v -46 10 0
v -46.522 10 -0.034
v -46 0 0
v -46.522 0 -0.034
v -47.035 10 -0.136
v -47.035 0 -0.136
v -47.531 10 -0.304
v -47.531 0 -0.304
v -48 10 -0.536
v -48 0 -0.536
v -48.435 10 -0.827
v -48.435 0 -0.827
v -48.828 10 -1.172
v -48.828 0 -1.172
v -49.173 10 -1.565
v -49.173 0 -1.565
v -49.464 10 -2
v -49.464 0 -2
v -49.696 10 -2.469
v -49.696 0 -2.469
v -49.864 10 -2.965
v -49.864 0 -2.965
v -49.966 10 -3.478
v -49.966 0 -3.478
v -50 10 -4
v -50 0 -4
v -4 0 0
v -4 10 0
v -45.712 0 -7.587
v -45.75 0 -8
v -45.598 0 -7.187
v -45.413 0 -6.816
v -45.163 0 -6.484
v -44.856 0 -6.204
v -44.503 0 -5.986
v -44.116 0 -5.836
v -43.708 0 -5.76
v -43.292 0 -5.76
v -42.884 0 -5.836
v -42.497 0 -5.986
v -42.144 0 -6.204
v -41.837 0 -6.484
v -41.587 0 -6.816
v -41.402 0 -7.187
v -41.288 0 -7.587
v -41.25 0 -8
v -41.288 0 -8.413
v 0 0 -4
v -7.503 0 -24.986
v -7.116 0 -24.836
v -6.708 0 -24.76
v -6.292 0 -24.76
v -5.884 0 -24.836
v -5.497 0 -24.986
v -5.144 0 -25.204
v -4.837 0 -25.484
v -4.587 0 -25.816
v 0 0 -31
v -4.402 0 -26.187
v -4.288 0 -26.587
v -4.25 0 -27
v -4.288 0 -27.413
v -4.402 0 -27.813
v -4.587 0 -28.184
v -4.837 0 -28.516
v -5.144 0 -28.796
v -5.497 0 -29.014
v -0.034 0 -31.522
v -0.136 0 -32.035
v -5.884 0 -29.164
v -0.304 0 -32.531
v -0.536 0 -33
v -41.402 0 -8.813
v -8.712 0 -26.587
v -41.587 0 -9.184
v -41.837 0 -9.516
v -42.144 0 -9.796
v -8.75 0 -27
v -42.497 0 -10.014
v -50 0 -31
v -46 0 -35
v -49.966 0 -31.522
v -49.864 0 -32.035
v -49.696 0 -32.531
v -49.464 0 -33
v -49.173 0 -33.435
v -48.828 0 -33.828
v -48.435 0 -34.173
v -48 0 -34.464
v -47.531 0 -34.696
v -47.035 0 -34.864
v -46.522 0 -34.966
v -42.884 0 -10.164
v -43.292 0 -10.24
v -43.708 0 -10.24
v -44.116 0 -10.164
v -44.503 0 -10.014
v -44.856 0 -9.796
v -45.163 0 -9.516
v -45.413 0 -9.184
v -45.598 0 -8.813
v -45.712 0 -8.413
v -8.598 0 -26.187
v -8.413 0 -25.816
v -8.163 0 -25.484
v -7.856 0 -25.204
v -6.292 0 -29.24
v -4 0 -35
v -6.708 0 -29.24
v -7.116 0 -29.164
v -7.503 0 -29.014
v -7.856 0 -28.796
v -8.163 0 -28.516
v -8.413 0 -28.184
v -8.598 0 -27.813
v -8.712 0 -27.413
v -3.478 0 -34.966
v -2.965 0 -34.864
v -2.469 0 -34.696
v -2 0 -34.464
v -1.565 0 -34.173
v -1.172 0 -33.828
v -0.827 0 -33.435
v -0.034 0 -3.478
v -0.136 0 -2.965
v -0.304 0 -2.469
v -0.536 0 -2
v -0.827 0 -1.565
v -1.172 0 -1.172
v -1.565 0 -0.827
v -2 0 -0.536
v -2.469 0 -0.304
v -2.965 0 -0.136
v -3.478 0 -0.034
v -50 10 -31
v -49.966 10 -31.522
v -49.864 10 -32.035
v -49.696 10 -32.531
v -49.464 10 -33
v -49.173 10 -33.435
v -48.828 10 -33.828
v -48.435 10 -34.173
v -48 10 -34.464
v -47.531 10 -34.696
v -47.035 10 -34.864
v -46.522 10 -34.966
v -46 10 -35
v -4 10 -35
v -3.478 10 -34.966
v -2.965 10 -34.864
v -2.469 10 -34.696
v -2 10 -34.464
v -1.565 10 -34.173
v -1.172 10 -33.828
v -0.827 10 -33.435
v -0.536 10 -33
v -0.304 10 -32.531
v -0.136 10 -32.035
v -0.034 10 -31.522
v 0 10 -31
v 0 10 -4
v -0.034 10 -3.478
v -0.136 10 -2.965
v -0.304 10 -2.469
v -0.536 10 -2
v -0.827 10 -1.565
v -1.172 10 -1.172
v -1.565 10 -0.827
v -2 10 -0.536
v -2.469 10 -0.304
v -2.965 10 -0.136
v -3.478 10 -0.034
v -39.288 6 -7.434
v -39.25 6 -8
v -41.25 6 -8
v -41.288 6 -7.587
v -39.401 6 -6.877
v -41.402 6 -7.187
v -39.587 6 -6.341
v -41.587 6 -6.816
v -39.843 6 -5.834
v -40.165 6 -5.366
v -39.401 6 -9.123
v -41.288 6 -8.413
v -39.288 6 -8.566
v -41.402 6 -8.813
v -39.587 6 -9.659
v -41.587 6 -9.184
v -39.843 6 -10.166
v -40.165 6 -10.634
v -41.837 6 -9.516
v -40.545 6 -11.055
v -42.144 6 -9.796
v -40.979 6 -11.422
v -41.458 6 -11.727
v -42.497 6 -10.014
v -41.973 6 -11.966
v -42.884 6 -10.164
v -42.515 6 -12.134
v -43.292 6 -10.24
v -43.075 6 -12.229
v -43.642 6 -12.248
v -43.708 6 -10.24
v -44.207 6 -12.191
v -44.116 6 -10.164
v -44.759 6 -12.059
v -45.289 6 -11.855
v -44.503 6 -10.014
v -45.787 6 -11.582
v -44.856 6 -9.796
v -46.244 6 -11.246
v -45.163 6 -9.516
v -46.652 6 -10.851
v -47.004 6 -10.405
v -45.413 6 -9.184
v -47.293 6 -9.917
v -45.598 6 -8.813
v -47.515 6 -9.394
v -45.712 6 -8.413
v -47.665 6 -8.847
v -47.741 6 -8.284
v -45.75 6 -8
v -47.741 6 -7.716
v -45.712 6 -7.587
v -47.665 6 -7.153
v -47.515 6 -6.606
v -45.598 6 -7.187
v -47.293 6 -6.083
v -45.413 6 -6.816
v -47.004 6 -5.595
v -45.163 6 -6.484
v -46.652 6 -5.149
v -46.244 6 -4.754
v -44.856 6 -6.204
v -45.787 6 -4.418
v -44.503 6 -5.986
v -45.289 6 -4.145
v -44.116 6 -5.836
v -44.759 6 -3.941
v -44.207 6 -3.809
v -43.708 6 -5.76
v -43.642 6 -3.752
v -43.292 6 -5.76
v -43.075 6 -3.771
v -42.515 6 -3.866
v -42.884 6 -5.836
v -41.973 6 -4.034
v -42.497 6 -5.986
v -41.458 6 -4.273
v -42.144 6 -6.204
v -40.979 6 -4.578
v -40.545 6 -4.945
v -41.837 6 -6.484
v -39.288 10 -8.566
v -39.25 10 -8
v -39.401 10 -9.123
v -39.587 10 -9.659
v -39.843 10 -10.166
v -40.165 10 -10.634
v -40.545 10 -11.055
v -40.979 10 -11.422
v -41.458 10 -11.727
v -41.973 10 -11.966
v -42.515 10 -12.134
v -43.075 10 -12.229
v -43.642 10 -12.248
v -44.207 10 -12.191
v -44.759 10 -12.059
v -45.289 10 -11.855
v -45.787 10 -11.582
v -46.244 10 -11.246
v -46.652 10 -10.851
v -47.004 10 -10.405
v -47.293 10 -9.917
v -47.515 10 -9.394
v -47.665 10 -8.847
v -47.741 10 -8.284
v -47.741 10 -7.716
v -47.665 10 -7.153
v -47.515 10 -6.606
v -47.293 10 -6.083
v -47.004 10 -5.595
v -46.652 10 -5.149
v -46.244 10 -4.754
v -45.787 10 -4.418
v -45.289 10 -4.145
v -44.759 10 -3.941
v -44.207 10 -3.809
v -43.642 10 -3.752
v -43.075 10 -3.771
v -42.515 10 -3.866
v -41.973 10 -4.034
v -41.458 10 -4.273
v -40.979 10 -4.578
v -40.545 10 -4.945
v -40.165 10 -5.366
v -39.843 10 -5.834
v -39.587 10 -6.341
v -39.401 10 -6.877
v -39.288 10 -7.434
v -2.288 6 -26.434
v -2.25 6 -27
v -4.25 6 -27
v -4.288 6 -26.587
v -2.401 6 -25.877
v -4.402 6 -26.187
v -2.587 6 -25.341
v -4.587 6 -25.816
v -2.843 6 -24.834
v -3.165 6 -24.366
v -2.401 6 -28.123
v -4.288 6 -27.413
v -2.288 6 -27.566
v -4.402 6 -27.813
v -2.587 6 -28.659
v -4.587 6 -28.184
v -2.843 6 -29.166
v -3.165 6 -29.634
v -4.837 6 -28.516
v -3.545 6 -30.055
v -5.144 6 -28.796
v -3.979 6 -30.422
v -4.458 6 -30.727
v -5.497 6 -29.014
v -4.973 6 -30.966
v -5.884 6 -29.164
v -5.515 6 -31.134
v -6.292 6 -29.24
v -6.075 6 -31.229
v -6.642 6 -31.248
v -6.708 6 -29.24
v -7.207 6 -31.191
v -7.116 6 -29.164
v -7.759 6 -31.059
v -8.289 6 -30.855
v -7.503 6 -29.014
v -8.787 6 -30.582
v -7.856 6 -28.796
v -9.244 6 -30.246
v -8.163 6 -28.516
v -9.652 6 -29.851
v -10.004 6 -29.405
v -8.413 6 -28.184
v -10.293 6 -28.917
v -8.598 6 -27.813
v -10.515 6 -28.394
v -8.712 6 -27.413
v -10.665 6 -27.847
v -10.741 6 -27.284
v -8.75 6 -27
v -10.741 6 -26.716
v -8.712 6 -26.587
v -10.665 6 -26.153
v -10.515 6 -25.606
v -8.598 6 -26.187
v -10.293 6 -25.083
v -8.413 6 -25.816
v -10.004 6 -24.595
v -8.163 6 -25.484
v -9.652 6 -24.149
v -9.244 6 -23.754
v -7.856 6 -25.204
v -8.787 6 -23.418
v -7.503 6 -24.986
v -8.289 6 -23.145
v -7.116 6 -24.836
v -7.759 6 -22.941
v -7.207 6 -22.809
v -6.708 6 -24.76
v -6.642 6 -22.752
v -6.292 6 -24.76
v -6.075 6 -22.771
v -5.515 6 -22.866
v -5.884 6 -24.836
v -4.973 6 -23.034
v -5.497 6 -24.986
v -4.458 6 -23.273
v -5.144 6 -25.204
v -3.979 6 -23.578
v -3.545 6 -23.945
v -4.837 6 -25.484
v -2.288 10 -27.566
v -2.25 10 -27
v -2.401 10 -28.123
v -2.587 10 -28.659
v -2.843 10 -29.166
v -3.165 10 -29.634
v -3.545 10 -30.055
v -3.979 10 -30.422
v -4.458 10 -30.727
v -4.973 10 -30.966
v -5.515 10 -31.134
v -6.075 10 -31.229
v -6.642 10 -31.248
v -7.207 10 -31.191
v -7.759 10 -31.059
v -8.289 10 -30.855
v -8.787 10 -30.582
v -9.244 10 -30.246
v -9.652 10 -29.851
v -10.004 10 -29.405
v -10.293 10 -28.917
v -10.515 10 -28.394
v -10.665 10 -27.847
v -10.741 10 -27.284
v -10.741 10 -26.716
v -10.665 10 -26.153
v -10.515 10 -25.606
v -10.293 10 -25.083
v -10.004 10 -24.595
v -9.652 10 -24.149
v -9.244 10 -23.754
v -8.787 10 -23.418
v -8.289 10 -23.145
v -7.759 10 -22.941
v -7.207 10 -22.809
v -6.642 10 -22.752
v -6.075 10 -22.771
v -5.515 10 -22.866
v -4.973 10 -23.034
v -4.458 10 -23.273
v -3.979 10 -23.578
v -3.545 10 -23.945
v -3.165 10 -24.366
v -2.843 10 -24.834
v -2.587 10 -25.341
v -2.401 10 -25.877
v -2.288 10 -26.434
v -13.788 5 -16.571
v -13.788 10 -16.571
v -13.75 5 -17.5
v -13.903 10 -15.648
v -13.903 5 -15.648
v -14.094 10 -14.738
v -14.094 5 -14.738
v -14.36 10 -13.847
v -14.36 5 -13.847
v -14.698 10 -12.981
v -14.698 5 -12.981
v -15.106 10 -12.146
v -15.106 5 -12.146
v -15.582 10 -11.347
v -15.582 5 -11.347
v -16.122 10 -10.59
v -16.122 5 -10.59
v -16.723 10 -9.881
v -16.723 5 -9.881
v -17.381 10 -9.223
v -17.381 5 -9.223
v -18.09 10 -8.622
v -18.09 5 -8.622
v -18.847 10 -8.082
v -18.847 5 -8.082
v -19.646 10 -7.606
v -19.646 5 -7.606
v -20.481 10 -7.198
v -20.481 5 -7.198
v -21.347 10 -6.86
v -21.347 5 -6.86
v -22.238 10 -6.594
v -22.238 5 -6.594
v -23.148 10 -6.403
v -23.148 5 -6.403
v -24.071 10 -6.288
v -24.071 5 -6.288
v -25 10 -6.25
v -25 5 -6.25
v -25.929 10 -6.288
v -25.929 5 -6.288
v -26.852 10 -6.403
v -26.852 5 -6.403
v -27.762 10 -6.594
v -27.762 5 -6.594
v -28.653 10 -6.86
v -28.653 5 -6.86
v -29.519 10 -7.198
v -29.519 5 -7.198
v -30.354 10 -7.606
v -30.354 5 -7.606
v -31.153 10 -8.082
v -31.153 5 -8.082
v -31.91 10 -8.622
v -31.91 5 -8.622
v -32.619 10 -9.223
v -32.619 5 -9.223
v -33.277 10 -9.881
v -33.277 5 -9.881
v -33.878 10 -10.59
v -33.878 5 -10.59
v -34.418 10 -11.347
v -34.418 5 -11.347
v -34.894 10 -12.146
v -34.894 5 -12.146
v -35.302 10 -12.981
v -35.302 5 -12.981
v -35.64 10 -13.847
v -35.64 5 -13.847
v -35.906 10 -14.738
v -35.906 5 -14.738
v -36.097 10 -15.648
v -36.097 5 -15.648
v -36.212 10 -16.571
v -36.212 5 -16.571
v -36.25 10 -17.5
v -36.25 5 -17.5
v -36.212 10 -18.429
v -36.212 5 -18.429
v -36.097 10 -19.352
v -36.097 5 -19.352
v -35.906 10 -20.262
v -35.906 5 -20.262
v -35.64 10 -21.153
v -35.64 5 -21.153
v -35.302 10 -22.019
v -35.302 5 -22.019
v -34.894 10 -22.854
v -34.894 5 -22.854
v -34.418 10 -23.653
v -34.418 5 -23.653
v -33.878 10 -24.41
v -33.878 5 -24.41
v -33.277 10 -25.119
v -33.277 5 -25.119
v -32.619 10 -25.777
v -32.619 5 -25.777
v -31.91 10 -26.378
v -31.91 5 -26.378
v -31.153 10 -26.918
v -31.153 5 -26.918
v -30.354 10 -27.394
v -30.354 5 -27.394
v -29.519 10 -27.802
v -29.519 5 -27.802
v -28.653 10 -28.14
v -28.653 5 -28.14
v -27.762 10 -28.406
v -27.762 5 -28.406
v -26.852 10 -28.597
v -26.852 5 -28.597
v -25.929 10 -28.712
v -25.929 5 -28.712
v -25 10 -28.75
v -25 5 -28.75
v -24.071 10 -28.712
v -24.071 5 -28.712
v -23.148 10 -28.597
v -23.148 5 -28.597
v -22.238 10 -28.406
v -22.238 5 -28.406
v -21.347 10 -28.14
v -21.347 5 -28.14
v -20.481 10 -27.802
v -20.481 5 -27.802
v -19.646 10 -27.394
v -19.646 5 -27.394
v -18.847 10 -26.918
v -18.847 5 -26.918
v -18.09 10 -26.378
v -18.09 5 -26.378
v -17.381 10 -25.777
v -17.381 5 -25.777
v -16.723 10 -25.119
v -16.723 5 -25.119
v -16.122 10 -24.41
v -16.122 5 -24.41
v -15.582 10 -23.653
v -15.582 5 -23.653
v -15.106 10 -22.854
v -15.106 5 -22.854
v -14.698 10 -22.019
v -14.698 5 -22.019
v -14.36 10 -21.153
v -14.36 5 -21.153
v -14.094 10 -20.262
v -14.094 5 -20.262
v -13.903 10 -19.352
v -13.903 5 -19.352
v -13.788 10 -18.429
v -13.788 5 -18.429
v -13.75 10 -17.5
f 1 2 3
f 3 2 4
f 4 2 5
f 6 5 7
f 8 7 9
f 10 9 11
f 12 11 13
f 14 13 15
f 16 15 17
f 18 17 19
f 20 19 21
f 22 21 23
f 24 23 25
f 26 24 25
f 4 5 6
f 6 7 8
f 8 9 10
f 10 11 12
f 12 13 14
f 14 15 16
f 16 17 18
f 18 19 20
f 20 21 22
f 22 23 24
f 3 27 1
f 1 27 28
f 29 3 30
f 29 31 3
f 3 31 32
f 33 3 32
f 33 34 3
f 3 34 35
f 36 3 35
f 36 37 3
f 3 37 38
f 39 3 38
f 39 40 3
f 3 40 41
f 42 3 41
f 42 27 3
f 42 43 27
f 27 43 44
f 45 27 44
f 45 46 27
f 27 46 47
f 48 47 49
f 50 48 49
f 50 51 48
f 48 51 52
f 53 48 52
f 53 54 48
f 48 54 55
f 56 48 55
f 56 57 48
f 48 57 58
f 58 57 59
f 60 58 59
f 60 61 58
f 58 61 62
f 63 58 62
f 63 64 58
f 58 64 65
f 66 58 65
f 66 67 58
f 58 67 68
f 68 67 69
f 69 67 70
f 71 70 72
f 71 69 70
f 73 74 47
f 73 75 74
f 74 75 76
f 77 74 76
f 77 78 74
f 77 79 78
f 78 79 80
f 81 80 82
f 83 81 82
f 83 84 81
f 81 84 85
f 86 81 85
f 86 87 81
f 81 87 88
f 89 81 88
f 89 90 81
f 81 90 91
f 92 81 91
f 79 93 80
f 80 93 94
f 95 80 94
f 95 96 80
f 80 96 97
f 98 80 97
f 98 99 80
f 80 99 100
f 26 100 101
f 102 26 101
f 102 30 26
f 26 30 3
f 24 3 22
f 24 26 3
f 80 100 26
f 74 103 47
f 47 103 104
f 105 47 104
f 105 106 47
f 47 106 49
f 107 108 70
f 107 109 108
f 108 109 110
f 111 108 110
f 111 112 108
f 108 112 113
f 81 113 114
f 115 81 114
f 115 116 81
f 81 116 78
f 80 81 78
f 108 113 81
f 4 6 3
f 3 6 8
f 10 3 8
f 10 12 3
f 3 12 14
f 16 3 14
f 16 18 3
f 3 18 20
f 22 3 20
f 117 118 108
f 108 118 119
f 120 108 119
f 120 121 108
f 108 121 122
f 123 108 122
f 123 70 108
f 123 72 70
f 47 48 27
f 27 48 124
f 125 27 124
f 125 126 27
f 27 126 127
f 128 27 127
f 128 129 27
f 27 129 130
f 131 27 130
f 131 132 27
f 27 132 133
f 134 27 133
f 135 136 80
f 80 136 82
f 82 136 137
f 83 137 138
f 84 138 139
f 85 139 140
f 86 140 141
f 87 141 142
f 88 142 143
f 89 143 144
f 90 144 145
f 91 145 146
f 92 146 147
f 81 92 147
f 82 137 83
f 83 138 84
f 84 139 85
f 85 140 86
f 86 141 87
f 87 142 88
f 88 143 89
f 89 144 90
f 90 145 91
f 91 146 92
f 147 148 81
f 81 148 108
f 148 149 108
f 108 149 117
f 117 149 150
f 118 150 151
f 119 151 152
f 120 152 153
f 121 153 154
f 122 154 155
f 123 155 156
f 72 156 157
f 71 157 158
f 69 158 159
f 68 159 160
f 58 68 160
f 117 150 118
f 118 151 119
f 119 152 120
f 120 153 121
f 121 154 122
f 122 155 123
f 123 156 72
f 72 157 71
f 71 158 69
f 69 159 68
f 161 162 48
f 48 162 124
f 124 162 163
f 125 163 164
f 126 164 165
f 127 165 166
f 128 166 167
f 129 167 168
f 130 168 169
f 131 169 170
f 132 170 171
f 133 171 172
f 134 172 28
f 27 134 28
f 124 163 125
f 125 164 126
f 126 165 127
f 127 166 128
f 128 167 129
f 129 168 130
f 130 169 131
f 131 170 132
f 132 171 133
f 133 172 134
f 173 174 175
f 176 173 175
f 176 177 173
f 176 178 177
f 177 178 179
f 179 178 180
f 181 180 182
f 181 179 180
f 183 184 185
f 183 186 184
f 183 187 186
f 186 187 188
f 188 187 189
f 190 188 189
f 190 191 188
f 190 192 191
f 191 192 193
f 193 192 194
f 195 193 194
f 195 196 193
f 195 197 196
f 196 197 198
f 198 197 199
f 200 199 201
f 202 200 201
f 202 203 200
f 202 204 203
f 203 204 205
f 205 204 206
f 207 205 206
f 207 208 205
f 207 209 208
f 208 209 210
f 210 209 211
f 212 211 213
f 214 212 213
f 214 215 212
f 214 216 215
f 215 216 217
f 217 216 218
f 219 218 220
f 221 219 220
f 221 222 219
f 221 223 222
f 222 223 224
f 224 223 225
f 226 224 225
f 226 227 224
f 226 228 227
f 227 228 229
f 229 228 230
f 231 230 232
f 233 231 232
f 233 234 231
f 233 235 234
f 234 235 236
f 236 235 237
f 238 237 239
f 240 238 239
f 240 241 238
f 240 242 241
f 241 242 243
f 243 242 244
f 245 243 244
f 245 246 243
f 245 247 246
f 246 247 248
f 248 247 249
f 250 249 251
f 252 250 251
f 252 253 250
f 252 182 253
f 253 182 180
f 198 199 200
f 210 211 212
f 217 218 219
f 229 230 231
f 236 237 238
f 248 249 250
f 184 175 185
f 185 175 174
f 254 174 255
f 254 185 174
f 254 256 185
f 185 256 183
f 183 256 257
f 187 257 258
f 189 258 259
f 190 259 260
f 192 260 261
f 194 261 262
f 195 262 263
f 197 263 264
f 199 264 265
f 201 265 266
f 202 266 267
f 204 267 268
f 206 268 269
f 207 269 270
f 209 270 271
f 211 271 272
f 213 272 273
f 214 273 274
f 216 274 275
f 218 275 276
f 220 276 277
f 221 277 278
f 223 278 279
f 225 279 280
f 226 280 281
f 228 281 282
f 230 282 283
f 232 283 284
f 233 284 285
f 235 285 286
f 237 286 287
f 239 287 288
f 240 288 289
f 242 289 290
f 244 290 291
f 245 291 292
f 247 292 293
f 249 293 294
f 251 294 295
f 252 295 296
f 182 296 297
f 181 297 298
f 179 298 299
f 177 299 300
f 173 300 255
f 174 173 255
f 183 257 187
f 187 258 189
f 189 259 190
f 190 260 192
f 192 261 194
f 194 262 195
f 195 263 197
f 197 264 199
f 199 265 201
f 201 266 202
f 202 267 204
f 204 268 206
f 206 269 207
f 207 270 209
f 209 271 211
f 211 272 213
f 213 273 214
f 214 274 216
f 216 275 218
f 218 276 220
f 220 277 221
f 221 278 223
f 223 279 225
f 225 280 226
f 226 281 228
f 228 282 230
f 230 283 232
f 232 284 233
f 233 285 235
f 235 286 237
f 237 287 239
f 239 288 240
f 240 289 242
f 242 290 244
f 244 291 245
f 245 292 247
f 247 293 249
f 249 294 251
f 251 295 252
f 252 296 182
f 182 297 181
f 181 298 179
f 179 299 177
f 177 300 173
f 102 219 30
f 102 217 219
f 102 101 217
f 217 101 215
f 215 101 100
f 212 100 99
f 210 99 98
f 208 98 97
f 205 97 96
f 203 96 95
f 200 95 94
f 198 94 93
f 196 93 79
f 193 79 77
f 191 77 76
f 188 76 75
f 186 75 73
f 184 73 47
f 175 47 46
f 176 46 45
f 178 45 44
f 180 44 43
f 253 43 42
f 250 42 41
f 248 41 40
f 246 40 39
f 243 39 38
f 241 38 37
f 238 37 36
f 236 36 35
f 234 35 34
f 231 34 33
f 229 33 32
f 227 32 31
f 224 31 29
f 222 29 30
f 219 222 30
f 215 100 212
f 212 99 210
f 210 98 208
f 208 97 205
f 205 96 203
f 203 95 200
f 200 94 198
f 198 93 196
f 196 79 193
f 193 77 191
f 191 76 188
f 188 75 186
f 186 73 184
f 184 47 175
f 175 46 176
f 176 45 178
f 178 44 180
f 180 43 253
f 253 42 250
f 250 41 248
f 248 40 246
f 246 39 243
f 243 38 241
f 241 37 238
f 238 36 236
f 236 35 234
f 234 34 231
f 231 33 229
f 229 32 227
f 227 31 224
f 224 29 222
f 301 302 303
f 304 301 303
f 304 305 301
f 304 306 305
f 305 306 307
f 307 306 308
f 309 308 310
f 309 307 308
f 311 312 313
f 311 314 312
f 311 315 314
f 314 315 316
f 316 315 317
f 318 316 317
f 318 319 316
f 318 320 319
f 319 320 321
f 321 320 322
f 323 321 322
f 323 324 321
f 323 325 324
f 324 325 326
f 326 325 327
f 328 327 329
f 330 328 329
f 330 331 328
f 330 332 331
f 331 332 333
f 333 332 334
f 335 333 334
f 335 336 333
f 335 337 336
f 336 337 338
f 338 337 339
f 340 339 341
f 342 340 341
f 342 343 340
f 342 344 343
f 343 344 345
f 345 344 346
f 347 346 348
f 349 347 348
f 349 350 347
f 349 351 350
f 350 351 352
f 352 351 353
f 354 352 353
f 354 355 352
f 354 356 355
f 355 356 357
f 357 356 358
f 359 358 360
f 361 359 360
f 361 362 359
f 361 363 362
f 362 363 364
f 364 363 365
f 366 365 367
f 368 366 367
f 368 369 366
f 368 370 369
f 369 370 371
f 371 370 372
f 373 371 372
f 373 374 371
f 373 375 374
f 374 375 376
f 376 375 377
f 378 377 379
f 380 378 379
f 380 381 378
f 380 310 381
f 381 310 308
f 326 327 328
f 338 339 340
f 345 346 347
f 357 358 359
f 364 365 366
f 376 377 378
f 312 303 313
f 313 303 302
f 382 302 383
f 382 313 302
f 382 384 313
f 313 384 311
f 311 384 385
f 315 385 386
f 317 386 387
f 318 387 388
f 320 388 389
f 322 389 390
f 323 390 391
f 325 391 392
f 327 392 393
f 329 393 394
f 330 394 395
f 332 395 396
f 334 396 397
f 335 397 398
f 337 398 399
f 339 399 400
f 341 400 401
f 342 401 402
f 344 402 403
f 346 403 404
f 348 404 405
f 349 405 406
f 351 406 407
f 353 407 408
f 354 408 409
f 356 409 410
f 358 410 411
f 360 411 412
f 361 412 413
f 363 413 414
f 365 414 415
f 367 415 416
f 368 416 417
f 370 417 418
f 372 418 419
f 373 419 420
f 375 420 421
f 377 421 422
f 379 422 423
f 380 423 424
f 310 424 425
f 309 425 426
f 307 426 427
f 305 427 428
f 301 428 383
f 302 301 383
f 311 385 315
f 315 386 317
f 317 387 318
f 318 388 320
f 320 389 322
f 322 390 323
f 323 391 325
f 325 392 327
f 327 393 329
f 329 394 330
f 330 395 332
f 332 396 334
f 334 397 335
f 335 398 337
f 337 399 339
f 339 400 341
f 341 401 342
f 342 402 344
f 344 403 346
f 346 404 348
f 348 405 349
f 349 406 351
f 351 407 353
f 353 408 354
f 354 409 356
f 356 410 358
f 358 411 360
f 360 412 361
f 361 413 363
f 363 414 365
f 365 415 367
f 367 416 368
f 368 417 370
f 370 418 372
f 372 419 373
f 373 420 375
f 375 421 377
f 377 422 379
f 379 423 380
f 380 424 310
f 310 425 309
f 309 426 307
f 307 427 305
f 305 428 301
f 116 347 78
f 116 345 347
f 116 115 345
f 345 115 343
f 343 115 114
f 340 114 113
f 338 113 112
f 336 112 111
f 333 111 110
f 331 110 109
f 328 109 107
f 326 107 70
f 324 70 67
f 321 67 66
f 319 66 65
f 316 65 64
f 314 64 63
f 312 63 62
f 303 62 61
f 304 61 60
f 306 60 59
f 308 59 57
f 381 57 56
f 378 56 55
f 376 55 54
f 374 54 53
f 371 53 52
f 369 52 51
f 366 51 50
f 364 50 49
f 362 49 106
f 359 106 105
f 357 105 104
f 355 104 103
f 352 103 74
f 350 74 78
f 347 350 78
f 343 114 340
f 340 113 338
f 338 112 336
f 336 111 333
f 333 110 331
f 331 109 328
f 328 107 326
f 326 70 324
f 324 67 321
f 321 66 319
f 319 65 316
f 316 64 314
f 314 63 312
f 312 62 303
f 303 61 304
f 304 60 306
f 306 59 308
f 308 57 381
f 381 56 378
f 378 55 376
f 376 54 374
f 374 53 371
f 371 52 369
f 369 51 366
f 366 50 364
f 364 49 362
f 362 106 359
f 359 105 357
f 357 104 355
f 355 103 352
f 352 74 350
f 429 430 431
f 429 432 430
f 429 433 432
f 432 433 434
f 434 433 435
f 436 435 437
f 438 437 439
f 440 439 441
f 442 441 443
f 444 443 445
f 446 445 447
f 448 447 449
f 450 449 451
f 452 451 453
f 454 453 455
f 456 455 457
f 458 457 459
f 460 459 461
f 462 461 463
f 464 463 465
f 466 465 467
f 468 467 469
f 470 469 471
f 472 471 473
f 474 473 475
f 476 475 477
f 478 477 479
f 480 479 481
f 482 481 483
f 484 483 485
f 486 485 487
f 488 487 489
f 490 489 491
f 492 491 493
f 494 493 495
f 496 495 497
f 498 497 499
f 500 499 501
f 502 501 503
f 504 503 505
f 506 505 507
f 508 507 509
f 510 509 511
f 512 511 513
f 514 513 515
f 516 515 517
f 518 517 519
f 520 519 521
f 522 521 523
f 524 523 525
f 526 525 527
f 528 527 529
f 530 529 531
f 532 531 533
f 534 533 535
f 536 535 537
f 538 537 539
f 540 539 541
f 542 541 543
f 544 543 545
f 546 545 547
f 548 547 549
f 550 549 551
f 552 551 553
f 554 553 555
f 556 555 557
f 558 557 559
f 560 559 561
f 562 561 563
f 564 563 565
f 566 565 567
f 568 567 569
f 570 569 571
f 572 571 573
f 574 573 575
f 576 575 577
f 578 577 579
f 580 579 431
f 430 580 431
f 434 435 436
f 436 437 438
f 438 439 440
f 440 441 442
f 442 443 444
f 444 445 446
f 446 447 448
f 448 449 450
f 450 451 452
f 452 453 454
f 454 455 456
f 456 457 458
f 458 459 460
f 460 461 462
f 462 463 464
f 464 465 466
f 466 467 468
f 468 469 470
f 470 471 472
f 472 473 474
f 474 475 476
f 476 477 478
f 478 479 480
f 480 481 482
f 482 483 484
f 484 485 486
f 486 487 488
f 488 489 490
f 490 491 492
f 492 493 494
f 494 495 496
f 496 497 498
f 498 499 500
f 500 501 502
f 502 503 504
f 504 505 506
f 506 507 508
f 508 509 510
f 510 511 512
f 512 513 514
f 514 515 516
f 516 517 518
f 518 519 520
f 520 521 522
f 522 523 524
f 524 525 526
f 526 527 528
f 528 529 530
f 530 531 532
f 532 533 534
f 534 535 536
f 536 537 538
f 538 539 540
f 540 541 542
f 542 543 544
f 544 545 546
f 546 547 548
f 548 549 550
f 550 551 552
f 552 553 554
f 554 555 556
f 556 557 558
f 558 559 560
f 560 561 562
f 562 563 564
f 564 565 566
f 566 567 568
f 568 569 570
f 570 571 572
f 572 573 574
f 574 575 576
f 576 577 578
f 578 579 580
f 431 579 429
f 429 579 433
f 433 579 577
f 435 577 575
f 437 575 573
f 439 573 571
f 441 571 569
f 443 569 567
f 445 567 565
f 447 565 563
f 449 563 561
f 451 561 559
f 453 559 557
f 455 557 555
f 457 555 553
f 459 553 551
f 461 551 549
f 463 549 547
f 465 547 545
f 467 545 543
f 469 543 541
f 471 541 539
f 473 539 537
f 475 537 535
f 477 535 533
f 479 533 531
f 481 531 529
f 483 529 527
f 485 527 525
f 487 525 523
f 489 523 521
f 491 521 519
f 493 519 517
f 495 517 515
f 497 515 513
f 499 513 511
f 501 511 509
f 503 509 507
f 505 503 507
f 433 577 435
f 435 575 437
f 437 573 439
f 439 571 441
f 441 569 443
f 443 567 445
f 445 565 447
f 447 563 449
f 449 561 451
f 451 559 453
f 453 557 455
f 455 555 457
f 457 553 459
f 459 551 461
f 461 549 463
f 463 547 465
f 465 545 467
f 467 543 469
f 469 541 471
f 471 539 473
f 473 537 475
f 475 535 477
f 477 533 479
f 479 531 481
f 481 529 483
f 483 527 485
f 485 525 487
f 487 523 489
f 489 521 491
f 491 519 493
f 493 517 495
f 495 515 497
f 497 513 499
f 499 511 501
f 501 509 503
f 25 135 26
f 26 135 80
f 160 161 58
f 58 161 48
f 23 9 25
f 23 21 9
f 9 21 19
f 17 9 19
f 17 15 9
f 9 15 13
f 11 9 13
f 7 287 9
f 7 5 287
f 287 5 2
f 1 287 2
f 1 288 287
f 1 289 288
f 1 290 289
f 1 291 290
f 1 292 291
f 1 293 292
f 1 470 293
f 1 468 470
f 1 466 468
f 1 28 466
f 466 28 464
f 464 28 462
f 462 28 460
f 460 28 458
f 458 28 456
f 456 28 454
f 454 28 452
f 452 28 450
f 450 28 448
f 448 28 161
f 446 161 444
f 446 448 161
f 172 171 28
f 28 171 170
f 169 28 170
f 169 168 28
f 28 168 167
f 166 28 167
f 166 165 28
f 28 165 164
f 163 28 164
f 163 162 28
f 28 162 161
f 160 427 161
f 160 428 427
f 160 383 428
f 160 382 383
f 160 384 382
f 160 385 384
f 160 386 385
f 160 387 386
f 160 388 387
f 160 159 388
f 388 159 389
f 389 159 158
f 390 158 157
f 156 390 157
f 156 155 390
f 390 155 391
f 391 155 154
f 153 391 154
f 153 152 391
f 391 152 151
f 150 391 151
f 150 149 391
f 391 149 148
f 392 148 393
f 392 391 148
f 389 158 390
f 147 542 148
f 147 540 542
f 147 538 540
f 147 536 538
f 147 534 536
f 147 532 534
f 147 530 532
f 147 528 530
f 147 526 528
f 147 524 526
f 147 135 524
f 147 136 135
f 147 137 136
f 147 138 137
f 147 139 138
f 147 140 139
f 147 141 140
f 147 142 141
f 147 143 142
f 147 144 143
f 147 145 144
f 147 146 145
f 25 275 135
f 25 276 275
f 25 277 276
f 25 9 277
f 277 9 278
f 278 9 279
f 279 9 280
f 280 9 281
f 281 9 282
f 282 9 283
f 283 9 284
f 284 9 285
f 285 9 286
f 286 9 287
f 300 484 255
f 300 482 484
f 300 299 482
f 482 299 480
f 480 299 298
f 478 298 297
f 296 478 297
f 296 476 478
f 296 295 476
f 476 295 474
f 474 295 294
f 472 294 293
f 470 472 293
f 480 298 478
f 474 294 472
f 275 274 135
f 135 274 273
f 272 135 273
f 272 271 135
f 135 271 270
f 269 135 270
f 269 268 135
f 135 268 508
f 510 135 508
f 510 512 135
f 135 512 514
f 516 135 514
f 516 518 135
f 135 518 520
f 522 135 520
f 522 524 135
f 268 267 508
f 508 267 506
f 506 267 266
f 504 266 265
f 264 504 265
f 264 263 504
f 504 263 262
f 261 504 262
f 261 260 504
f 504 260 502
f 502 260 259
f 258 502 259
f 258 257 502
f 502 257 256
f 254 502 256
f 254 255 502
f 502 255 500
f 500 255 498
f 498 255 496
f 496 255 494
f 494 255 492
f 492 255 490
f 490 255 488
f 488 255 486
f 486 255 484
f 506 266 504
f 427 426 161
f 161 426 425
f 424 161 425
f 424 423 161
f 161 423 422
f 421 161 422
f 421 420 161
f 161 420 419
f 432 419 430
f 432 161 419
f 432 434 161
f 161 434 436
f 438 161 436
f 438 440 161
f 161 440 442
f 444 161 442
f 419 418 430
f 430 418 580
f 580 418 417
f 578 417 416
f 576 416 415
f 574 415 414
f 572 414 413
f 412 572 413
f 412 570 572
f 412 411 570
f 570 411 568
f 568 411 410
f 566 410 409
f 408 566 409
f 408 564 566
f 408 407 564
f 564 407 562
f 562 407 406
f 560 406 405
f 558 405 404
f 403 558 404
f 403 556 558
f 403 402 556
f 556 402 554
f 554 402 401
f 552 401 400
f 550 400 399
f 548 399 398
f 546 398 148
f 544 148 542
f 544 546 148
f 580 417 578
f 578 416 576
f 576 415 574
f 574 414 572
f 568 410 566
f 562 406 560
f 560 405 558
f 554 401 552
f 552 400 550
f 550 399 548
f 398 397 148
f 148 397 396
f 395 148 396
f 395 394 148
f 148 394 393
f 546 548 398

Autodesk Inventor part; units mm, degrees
ref_plane "YZ Plane" through (0, 0, 0) normal (1, 0, 0) x (0, 1, 0)
ref_plane "XZ Plane" through (0, 0, 0) normal (0, 1, 0) x (-1, 0, 0)
ref_plane "XY Plane" through (0, 0, 0) normal (0, 0, 1) x (1, 0, 0)
sketch "Sketch1" plane through (0, 0, 0) normal (0, 1, 0) x (-1, 0, 0)
  line L0 (0, 0) -> (50, 0)
  line L1 (50, 0) -> (50, -35)
  line L2 (50, -35) -> (0, -35)
  line L3 (0, -35) -> (0, 0)
  dimension "d0" = 50
  dimension "d1" = 35
extrude "Extrusion1" add sketch "Sketch1" along normal blind 10
sketch "Sketch2" plane through (0, 10, 0) normal (0, 1, 0) x (1, 0, 0)
  circle A0 centre (-25, 17.5) radius 11.25
  line L0 (0, 35) -> (-50, 35) projected
  line L1 (-50, 35) -> (-50, 0) projected
  point P0 (0, 0)
  dimension "d4" = 22.5
  dimension "d5" = 17.5
  dimension "d6" = 25
extrude "Extrusion2" cut sketch "Sketch2" against normal blind 5
sketch "Sketch3" plane through (0, 10, 0) normal (0, 1, 0) x (1, 0, 0)
  line L0 (-50, 35) -> (-50, 0) projected
  line L1 (-50, 0) -> (0, 0) projected
  line L2 (0, 0) -> (0, 35) projected
  line L3 (0, 35) -> (-50, 35) projected
  point P0 (-43.5, 8)
  point P1 (-6.5, 27)
  dimension "d9" = 6.5
  dimension "d10" = 8
  dimension "d11" = 6.5
  dimension "d12" = 8
hole "Hole1" at (-43.5, 10, -8) at (-6.5, 10, -27) direction (0, -1, 0) diameter 4.5 depth 20 tip angle 118 counterbore diameter 8.5 counterbore depth 4
fillet "Fillet1" radius 4 1 edges at (0, 5, 0)
fillet "Fillet2" radius 4 3 edges at (0, 5, -35) (-50, 5, -35) (-50, 5, 0)
properties part number "Small Bracket (LHS)"
